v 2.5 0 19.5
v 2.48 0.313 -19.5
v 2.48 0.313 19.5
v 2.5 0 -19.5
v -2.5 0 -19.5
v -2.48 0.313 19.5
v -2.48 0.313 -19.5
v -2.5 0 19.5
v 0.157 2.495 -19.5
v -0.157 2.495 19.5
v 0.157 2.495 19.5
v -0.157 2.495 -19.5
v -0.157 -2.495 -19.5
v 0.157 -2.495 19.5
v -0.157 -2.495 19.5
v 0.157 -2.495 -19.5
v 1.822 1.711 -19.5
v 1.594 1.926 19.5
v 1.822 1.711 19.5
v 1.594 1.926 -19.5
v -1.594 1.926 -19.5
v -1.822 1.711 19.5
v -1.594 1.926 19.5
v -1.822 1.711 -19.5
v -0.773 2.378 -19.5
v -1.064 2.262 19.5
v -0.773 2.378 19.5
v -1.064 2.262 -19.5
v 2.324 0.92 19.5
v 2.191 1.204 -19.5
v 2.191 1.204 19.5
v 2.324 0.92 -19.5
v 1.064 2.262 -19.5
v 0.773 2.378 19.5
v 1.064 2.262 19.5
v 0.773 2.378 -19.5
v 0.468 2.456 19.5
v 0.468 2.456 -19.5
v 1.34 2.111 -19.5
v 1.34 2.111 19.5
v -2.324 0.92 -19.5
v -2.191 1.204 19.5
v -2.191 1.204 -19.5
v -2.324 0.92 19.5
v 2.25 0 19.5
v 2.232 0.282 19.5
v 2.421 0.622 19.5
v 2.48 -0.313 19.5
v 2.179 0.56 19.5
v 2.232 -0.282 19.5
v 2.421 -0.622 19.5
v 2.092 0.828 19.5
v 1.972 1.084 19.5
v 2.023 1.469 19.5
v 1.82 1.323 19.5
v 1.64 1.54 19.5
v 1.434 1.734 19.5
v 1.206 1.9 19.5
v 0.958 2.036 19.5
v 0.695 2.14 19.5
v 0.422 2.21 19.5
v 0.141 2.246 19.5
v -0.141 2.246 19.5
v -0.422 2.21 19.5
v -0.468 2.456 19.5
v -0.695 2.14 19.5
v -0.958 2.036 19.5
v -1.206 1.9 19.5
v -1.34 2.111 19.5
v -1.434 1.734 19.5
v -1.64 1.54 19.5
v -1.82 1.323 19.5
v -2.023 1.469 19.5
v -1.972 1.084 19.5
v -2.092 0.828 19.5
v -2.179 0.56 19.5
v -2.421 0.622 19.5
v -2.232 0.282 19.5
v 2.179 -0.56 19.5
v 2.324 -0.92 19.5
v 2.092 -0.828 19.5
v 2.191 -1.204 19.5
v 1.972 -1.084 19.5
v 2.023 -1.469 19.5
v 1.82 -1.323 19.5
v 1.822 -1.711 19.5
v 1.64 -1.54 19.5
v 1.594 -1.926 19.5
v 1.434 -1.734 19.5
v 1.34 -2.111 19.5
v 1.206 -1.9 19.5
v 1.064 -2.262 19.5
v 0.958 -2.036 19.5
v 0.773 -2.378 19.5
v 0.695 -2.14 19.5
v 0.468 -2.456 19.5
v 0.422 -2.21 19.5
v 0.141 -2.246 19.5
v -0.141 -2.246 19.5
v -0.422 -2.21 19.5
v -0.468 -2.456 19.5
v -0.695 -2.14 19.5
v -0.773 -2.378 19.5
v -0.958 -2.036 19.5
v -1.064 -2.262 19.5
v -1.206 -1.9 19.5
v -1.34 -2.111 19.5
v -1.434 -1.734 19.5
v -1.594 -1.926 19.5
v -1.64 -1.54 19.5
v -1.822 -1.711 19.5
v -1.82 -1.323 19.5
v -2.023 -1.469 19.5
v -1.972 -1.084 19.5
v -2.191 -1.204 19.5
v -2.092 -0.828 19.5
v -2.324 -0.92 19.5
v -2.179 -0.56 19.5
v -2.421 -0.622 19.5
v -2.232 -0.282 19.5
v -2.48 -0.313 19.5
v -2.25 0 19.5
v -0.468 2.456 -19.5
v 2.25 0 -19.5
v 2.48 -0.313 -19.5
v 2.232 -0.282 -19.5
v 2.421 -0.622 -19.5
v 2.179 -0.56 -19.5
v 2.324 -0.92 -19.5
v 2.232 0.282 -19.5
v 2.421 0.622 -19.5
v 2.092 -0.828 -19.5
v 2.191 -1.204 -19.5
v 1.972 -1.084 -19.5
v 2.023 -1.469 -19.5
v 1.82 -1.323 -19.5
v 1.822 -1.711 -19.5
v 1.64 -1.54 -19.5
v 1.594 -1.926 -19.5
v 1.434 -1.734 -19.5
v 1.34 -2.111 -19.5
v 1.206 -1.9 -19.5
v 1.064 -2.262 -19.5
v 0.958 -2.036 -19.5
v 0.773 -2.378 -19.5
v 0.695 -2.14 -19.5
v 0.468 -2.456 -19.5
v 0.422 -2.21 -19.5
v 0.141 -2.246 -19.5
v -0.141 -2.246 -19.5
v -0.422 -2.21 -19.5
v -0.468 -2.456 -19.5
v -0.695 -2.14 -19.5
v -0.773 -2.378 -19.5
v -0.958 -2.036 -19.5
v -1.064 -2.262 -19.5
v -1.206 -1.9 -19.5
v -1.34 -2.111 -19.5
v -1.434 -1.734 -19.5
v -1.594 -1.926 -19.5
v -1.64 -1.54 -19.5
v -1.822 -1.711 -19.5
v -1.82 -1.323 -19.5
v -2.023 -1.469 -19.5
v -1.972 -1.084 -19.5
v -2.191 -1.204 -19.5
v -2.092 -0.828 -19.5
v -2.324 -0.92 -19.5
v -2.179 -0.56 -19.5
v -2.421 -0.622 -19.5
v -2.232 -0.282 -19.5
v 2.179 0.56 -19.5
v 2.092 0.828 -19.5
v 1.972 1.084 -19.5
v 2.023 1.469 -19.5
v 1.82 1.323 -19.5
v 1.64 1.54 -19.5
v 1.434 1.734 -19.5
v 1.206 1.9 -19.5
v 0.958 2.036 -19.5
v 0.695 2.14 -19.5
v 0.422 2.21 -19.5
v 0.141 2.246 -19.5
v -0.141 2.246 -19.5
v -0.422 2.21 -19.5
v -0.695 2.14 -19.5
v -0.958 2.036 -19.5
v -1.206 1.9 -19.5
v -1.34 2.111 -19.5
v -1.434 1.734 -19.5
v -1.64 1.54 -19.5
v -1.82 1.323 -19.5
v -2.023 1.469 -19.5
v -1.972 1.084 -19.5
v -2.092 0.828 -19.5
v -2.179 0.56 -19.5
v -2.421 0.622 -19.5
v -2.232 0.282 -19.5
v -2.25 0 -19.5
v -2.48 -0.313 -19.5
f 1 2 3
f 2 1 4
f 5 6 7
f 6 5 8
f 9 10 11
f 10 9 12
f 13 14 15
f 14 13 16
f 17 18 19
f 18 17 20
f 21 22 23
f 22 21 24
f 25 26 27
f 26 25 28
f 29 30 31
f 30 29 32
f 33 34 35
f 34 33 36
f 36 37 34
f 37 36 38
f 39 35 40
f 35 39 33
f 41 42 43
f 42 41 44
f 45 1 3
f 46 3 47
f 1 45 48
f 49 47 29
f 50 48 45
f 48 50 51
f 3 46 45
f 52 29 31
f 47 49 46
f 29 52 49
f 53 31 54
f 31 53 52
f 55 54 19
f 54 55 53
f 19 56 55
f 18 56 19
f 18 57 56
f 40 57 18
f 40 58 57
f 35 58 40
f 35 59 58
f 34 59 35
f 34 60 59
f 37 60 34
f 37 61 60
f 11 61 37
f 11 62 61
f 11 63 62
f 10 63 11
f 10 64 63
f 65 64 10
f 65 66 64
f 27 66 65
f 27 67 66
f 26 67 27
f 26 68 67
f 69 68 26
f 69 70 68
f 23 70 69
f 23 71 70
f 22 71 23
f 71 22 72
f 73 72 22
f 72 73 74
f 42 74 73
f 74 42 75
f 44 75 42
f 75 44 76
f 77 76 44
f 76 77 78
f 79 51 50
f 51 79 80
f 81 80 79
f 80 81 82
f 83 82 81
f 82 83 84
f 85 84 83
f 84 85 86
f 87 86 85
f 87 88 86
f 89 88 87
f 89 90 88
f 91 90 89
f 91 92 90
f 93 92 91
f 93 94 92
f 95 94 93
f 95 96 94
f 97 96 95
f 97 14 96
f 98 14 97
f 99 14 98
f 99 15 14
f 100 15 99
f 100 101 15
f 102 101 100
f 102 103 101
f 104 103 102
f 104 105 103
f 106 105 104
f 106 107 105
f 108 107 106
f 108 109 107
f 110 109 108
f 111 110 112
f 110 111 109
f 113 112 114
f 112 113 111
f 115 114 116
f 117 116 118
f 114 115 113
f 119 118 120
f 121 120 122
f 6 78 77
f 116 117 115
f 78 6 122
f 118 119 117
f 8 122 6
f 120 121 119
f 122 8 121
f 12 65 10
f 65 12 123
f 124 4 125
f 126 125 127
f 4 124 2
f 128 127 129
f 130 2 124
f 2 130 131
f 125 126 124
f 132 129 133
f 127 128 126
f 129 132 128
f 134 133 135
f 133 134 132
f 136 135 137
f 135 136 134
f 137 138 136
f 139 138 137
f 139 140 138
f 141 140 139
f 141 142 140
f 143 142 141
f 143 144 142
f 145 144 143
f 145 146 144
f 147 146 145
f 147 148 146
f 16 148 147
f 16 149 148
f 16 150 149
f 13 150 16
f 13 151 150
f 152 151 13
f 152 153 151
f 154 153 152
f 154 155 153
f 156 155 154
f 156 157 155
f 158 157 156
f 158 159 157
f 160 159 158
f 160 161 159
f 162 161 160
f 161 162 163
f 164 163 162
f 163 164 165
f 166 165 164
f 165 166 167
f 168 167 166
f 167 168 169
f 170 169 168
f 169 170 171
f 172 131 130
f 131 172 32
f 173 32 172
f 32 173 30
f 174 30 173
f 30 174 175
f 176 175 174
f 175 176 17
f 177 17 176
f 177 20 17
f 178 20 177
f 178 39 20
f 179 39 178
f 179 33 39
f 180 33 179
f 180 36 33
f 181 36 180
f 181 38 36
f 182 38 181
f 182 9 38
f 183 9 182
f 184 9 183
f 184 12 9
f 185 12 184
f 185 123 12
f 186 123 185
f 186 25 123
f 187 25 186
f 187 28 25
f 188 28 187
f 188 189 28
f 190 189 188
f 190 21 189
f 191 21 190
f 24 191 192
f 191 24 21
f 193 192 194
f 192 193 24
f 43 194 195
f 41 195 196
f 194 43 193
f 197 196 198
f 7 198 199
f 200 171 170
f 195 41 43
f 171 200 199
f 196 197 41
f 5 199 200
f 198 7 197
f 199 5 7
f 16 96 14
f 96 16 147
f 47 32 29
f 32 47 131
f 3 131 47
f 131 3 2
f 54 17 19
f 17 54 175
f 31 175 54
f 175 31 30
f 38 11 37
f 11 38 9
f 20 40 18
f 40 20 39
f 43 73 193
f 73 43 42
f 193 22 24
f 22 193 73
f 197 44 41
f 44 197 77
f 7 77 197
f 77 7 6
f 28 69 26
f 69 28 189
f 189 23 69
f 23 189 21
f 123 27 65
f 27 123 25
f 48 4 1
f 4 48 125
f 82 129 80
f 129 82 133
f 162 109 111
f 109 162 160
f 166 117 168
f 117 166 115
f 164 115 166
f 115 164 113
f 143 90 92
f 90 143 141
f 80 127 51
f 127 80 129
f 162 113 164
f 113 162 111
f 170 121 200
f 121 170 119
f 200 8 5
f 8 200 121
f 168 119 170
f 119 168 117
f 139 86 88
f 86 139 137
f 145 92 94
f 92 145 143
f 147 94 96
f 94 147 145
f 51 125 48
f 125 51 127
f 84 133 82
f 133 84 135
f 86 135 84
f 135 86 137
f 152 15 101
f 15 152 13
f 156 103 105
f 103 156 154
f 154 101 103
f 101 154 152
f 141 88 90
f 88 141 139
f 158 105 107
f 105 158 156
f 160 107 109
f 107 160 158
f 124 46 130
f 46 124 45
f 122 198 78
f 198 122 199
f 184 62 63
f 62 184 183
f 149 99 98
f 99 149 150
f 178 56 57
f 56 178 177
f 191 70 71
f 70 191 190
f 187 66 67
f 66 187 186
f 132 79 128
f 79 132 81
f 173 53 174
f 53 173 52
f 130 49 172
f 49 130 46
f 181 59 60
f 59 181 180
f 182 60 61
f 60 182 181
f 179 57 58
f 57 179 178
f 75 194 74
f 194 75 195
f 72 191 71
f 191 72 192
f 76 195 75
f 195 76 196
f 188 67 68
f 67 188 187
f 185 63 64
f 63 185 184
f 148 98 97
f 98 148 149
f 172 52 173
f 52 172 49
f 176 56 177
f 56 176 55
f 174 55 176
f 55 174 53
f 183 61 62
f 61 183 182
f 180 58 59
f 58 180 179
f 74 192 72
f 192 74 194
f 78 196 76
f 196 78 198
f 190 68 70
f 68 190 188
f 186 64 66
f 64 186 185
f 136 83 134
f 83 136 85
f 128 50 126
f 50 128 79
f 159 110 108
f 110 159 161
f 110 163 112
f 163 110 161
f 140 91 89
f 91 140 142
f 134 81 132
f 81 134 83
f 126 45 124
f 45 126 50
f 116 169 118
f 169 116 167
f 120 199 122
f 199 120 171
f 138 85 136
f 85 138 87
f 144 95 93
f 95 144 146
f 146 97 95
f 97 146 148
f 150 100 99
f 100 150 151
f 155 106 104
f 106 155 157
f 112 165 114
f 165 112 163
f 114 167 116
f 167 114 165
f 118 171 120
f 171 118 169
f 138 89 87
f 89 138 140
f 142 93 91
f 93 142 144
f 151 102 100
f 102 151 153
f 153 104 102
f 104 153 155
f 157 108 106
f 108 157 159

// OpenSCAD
$fn = 50;


difference() {
	union() {
		translate(v = [0, 0, -19.5000000000]) {
			cylinder(h = 39, r = 2.5000000000);
		}
	}
	union() {
		translate(v = [0, 0, -100.0000000000]) {
			cylinder(h = 200, r = 2.2500000000);
		}
	}
}
